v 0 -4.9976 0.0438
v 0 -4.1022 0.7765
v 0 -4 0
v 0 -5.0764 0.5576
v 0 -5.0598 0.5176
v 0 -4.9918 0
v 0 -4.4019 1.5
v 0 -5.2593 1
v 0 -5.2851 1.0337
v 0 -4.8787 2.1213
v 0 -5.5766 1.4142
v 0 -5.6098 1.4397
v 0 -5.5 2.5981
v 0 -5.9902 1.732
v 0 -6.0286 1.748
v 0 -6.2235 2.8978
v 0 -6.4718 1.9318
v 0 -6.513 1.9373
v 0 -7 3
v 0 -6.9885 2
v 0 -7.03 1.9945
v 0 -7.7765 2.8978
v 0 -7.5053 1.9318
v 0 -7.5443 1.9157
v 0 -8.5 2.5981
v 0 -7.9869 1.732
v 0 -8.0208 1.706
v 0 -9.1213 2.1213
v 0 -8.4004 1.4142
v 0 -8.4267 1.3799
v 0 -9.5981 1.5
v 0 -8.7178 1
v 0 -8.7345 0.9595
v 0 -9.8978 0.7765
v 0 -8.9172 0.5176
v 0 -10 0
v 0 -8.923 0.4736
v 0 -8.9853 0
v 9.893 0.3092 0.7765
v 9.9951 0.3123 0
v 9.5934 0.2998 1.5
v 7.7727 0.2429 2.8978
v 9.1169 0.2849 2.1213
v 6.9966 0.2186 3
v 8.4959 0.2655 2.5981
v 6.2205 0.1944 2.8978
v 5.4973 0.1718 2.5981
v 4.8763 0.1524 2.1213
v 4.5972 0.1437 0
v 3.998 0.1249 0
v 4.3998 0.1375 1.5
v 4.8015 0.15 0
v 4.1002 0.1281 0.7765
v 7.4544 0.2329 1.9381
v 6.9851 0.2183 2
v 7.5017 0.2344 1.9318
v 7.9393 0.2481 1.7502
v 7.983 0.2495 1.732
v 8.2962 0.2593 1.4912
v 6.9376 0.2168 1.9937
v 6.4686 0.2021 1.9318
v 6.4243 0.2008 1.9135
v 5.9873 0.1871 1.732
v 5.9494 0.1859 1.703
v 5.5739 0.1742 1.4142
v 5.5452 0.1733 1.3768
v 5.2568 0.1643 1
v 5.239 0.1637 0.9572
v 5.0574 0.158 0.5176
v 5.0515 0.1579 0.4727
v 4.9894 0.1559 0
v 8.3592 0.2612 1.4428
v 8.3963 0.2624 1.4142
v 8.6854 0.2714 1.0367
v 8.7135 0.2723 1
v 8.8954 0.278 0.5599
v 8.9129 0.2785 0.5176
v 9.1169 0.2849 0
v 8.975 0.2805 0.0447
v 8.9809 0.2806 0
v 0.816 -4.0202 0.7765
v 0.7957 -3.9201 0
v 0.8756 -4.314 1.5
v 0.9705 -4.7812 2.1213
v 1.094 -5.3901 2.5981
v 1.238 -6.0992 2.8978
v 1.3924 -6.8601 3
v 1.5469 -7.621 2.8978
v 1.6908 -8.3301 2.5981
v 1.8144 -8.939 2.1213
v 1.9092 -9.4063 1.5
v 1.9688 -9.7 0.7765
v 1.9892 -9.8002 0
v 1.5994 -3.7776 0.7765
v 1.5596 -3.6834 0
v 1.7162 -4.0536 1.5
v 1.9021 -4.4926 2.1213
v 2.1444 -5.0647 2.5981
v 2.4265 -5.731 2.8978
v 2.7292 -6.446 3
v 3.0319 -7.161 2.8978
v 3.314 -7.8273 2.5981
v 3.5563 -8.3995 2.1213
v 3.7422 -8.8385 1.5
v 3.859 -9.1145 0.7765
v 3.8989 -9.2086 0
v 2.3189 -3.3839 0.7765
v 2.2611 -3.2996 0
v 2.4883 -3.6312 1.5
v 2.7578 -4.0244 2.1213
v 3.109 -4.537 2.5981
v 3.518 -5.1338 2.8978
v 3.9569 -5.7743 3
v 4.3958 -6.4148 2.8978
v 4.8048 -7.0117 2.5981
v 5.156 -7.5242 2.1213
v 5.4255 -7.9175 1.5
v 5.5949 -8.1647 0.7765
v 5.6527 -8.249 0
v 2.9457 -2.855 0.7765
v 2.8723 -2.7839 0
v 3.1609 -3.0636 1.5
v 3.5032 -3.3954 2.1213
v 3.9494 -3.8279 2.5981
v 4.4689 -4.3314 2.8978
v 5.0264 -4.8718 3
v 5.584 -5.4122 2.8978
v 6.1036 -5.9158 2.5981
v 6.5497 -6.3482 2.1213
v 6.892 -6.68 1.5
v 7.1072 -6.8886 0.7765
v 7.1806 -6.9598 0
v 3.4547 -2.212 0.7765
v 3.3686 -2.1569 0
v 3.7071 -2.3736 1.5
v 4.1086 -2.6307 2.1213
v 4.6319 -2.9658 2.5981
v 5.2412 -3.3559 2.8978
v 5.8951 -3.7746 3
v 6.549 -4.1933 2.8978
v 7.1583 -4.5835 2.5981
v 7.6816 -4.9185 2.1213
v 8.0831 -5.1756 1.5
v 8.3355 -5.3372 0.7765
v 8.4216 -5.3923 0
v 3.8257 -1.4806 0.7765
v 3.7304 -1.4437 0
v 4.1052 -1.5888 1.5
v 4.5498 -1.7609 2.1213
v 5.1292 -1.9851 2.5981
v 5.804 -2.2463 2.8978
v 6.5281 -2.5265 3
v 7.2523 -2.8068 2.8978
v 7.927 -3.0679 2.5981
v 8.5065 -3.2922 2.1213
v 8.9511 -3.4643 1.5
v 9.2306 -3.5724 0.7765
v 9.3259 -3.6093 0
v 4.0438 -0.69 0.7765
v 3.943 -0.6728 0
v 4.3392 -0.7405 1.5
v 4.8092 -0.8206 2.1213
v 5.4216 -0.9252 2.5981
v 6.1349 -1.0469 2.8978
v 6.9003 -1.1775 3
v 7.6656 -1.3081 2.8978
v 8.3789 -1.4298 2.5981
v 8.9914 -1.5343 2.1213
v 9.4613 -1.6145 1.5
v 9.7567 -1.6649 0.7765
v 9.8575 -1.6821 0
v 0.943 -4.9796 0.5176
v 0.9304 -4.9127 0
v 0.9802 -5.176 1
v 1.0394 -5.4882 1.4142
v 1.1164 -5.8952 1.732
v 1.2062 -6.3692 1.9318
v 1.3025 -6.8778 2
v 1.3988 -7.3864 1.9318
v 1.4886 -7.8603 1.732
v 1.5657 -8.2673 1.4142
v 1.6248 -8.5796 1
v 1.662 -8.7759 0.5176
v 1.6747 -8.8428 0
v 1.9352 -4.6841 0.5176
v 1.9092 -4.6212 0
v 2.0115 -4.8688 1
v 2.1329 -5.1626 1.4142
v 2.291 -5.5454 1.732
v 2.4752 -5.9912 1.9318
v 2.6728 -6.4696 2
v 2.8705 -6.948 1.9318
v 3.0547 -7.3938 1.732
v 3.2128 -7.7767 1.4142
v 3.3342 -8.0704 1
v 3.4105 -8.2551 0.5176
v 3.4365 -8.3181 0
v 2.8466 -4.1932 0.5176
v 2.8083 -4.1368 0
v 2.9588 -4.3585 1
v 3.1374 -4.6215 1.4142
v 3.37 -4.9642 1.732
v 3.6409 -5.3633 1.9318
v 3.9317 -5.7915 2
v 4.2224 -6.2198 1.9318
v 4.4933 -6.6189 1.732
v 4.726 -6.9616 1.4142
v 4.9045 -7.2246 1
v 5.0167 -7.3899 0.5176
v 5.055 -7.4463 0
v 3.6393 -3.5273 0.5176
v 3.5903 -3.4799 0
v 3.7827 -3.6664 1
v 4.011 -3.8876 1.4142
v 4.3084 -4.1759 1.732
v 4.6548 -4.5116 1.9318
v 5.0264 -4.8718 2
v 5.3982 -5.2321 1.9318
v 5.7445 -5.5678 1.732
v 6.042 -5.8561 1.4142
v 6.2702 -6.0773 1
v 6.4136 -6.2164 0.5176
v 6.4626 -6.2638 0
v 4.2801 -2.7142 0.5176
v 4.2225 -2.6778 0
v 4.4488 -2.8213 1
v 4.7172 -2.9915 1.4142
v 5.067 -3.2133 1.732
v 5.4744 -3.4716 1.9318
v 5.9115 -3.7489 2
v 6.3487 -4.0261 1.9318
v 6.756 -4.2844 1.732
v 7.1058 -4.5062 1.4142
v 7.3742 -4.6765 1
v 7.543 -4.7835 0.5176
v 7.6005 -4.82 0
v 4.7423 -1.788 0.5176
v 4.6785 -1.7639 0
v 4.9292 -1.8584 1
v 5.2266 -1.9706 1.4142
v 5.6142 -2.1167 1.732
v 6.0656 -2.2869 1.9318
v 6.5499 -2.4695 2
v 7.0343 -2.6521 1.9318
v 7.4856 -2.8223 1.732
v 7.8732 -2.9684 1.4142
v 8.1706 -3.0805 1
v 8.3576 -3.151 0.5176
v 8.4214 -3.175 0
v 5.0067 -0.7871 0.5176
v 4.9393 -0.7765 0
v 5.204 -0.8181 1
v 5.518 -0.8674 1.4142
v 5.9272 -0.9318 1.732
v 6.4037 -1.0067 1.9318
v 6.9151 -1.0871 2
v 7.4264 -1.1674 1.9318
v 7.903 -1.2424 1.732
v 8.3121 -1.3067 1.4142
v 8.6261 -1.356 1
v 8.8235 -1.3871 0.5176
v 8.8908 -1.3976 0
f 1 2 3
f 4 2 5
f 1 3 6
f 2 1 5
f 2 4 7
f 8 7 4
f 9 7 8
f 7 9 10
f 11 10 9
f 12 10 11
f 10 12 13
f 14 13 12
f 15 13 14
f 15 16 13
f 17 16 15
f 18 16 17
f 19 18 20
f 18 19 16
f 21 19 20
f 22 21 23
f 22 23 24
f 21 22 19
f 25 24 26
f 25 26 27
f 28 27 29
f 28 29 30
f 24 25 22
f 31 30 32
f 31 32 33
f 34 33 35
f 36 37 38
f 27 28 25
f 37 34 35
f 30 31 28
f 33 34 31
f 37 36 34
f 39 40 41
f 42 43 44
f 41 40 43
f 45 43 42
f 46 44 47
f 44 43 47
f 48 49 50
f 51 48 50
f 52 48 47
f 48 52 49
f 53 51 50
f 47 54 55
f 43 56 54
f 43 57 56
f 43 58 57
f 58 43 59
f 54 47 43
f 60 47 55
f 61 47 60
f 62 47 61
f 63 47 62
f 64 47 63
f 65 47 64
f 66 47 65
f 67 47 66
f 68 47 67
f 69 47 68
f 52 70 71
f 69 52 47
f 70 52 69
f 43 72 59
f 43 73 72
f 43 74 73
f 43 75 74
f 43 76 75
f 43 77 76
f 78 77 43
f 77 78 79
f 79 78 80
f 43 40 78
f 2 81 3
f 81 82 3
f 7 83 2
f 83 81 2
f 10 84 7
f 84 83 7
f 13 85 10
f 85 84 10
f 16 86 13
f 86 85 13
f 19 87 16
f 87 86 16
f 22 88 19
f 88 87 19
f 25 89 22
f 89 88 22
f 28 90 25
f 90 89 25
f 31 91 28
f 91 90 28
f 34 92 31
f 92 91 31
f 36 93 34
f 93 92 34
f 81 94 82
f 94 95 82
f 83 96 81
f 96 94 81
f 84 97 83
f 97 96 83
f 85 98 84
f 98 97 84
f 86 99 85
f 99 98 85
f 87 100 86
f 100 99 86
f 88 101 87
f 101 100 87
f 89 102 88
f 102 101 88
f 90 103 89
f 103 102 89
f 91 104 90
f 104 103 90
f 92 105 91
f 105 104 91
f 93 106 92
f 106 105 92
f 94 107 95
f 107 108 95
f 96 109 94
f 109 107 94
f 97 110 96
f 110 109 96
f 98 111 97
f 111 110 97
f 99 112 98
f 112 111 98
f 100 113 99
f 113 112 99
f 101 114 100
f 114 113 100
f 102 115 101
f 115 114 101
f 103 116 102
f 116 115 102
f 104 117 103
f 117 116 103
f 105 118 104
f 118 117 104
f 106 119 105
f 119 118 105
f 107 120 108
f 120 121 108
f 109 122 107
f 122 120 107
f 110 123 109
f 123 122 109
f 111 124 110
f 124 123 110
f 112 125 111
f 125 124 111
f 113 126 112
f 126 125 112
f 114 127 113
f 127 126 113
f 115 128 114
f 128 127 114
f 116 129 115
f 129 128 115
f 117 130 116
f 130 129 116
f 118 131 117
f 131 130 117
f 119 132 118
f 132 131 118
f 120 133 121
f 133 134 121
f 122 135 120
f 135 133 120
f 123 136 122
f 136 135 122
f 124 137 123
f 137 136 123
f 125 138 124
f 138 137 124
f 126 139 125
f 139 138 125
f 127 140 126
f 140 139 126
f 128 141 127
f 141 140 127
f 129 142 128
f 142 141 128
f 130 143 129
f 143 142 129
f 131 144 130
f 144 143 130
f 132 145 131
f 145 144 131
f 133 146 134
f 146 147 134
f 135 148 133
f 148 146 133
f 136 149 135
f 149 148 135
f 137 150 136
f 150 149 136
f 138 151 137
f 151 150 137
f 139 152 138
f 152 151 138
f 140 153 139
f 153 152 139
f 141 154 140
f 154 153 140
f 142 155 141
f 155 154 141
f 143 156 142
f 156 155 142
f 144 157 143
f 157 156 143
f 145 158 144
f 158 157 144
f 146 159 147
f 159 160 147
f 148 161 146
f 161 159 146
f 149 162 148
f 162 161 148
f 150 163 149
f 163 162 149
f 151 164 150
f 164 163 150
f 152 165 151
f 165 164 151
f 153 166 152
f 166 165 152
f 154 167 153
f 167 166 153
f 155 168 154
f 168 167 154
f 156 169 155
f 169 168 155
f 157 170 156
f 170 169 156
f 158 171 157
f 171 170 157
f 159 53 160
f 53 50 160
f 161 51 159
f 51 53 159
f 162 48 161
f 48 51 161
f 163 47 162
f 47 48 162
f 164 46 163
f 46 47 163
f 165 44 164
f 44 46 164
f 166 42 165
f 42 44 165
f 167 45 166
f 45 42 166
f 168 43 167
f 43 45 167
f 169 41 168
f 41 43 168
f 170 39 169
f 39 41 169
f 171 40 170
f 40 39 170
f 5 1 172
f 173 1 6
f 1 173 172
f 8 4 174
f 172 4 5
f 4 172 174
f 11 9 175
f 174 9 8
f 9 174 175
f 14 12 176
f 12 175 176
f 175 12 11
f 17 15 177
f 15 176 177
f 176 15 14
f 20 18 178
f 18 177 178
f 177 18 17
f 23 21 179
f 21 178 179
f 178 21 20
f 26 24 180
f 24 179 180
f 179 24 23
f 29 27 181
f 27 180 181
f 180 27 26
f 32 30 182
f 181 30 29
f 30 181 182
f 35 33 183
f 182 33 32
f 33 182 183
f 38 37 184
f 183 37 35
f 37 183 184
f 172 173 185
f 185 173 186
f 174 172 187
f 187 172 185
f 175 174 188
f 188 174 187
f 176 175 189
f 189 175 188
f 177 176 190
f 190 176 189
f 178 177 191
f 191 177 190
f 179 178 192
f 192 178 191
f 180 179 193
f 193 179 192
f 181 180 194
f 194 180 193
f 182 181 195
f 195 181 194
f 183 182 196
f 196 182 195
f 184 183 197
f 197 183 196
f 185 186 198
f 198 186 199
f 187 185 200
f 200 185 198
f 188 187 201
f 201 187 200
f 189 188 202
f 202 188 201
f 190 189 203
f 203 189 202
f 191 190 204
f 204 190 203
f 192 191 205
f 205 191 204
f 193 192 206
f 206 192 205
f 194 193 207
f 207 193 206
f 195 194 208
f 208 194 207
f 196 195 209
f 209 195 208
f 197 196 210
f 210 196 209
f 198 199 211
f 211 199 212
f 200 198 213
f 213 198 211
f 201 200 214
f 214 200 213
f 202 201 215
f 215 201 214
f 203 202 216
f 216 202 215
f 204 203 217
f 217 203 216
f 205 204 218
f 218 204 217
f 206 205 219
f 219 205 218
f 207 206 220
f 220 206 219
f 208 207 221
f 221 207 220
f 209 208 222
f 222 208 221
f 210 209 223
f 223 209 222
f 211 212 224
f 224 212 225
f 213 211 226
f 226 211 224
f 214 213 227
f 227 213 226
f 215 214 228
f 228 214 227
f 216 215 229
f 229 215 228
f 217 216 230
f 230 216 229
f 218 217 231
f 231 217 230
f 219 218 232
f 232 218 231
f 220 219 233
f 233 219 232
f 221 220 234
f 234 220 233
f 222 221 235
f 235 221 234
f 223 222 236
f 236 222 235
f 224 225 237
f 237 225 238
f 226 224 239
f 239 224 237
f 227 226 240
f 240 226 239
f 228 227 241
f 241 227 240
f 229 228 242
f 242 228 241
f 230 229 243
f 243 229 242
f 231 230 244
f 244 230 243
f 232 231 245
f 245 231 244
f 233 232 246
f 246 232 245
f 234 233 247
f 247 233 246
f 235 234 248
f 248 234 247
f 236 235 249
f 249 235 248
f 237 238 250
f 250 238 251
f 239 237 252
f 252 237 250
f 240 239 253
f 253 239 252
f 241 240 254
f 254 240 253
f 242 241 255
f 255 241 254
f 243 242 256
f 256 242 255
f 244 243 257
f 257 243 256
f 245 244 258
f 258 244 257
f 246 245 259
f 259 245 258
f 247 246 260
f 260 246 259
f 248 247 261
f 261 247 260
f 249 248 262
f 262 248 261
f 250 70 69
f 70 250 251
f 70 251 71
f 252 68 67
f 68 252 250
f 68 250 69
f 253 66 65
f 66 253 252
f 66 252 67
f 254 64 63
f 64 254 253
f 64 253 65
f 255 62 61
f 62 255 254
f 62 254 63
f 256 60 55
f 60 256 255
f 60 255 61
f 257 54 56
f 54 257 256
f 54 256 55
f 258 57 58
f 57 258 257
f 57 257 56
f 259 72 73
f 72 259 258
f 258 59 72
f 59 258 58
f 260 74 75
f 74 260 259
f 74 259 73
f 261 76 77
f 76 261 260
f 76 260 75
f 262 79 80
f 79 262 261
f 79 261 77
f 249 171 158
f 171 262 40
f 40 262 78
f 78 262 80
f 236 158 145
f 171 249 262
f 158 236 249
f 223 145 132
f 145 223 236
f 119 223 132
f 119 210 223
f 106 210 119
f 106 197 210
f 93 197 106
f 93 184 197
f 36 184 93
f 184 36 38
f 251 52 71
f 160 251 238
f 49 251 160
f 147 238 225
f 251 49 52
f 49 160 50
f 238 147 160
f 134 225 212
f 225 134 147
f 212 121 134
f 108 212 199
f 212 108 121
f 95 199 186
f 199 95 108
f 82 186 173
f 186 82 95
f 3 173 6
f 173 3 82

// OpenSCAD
// file: ../build_environments.scad
// build_environments.scad: modules to build level sections
//

module pool(diameter=10.0, wall_height=2.0, step_width=3.0, connections=[])
{
    difference() {
        union() {
        difference() {
            cylinder(h=0.5,r1=diameter+step_width,r2=diameter+step_width,$fn=48);
            translate([0,0,-0.1])
                cylinder(h=0.7,r1=diameter,r2=diameter,$fn=48);
        }
        difference() {
            cylinder(h=wall_height,r1=diameter+step_width+1.0,r2=diameter+step_width+1.0,$fn=48);
            translate([0,0,-0.1])
                cylinder(h=wall_height+0.2,r1=diameter+step_width,r2=diameter+step_width,$fn=48);
        }
        }
    
        for (c = connections)
        {
            rotate([0,90,0]) {
                angle = atan2(c[1],c[0]);
                rotate([-angle,0,0]) {
                    cylinder(h=diameter+5.0,r1=c[2],r2=c[2],$fn=48);
                }
            }
        }
    }
}

module straight(length=10.0, width=2.0, dy1=0.0, dy2=0.0, dz=0.0)
{
    dims = [0, 0, 0, 0, 0, (dz/length)];
    matrix = [
        [ 1, dims[0], dims[1], 0 ],
        [ dims[2], 1, dims[4], 0 ],
        [ dims[5], dims[3], 1, 0 ],
        [ 0, 0, 0, 1 ]
    ];
    multmatrix(matrix)
    difference() {
        translate([dy1,0,0])
        union() {
            rotate([0,90,0]) {
                difference() {
                    cylinder(h=(length-dy1-dy2),r1=width+1.0,r2=width+1.0,$fn=24);
                    translate([0,0,-0.1])
                        cylinder(h=(length-dy1-dy2+0.2),r1=width,r2=width,$fn=24);
                }
                difference() {
                    cylinder(h=1.0,r1=width+2.0,r2=width+2.0,$fn=24);
                    translate([0,0,-0.1])
                        cylinder(h=1.2,r1=width,r2=width,$fn=24);
                }
                translate([0,0,(length-dy1-dy2)-1.0]) {
                    difference() {
                        cylinder(h=1.0,r1=width+2.0,r2=width+2.0,$fn=24);
                        translate([0,0,-0.1])
                            cylinder(h=1.2,r1=width,r2=width,$fn=24);
                    }
                }
            }
        }
        translate([0,0,-(2*width+4.0)/2])
            cube([3*length,3*length,2*width+4.0],center=true);
    }
}

module curve(p0=[0,0], center=[0,0], dir=1, angle=0.0, width=2.0)
{
    radius = sqrt((p0[0]-center[0])*(p0[0]-center[0]) + (p0[1]-center[1])*(p0[1]-center[1]));
    if (dir == 0) {
        difference() {
            rotate([0,0,-90])
            difference() {
                rotate_extrude(angle = angle, convexity = 10, $fn=32)
                    translate([radius, 0, 0])
                        circle(r = width+1.0,$fn=24);
                rotate([0,0,-1.0])
                    rotate_extrude(angle = angle+2.0, convexity = 10, $fn=32)
                        translate([radius, 0, 0])
                            circle(r = width,$fn=24);
            }
            translate([0,0,-(2*width+4.0)/2])
                cube([5*radius,5*radius,2*width+4.0],center=true);
        }
    }
    else {
        difference() {
            rotate([0,0,90])
            difference() {
                rotate_extrude(angle = -angle, convexity = 10, $fn=32)
                    translate([radius, 0, 0])
                        circle(r = width+1.0,$fn=24);
                rotate([0,0,1.0])
                    rotate_extrude(angle = -angle-2.0, convexity = 10, $fn=32)
                        translate([radius, 0, 0])
                            circle(r = width,$fn=24);
            }
            translate([0,0,-(2*width+4.0)/2])
                cube([5*radius,5*radius,2*width+4.0],center=true);
        }
    }

}

// test pool
//pool(diameter=12.0000, wall_height=3.0000, step_width=3.0000, connections=[[0.0000,-26.0000,2.0000], [23.6074,0.0000,2.0000]]);

// test straight, slope
//straight(length=26.0000, width=2.0000, dy1=11.8322, dy2=6.7082, dz=0.0000);
//straight(length=29.1549, width=12.0000, dy1=0.0000, dy2=0.0000, dz=-15.0000);

// test curve
//curve(p0=[23.6074, 0.0000], center=[23.6074, 5.0000], dir=0, angle=60.1011, width=2.0000);
//curve(p0=[33.6426, 12.4219], center=[37.9771, 9.9295], dir=1, angle=120.4627, width=2.0000);
// main file
use <../build_environments.scad>;
curve(p0=[-98.0000, 76.2778], center=[-105.0000, 76.2778], dir=0, angle=91.7899, width=2.0000);
